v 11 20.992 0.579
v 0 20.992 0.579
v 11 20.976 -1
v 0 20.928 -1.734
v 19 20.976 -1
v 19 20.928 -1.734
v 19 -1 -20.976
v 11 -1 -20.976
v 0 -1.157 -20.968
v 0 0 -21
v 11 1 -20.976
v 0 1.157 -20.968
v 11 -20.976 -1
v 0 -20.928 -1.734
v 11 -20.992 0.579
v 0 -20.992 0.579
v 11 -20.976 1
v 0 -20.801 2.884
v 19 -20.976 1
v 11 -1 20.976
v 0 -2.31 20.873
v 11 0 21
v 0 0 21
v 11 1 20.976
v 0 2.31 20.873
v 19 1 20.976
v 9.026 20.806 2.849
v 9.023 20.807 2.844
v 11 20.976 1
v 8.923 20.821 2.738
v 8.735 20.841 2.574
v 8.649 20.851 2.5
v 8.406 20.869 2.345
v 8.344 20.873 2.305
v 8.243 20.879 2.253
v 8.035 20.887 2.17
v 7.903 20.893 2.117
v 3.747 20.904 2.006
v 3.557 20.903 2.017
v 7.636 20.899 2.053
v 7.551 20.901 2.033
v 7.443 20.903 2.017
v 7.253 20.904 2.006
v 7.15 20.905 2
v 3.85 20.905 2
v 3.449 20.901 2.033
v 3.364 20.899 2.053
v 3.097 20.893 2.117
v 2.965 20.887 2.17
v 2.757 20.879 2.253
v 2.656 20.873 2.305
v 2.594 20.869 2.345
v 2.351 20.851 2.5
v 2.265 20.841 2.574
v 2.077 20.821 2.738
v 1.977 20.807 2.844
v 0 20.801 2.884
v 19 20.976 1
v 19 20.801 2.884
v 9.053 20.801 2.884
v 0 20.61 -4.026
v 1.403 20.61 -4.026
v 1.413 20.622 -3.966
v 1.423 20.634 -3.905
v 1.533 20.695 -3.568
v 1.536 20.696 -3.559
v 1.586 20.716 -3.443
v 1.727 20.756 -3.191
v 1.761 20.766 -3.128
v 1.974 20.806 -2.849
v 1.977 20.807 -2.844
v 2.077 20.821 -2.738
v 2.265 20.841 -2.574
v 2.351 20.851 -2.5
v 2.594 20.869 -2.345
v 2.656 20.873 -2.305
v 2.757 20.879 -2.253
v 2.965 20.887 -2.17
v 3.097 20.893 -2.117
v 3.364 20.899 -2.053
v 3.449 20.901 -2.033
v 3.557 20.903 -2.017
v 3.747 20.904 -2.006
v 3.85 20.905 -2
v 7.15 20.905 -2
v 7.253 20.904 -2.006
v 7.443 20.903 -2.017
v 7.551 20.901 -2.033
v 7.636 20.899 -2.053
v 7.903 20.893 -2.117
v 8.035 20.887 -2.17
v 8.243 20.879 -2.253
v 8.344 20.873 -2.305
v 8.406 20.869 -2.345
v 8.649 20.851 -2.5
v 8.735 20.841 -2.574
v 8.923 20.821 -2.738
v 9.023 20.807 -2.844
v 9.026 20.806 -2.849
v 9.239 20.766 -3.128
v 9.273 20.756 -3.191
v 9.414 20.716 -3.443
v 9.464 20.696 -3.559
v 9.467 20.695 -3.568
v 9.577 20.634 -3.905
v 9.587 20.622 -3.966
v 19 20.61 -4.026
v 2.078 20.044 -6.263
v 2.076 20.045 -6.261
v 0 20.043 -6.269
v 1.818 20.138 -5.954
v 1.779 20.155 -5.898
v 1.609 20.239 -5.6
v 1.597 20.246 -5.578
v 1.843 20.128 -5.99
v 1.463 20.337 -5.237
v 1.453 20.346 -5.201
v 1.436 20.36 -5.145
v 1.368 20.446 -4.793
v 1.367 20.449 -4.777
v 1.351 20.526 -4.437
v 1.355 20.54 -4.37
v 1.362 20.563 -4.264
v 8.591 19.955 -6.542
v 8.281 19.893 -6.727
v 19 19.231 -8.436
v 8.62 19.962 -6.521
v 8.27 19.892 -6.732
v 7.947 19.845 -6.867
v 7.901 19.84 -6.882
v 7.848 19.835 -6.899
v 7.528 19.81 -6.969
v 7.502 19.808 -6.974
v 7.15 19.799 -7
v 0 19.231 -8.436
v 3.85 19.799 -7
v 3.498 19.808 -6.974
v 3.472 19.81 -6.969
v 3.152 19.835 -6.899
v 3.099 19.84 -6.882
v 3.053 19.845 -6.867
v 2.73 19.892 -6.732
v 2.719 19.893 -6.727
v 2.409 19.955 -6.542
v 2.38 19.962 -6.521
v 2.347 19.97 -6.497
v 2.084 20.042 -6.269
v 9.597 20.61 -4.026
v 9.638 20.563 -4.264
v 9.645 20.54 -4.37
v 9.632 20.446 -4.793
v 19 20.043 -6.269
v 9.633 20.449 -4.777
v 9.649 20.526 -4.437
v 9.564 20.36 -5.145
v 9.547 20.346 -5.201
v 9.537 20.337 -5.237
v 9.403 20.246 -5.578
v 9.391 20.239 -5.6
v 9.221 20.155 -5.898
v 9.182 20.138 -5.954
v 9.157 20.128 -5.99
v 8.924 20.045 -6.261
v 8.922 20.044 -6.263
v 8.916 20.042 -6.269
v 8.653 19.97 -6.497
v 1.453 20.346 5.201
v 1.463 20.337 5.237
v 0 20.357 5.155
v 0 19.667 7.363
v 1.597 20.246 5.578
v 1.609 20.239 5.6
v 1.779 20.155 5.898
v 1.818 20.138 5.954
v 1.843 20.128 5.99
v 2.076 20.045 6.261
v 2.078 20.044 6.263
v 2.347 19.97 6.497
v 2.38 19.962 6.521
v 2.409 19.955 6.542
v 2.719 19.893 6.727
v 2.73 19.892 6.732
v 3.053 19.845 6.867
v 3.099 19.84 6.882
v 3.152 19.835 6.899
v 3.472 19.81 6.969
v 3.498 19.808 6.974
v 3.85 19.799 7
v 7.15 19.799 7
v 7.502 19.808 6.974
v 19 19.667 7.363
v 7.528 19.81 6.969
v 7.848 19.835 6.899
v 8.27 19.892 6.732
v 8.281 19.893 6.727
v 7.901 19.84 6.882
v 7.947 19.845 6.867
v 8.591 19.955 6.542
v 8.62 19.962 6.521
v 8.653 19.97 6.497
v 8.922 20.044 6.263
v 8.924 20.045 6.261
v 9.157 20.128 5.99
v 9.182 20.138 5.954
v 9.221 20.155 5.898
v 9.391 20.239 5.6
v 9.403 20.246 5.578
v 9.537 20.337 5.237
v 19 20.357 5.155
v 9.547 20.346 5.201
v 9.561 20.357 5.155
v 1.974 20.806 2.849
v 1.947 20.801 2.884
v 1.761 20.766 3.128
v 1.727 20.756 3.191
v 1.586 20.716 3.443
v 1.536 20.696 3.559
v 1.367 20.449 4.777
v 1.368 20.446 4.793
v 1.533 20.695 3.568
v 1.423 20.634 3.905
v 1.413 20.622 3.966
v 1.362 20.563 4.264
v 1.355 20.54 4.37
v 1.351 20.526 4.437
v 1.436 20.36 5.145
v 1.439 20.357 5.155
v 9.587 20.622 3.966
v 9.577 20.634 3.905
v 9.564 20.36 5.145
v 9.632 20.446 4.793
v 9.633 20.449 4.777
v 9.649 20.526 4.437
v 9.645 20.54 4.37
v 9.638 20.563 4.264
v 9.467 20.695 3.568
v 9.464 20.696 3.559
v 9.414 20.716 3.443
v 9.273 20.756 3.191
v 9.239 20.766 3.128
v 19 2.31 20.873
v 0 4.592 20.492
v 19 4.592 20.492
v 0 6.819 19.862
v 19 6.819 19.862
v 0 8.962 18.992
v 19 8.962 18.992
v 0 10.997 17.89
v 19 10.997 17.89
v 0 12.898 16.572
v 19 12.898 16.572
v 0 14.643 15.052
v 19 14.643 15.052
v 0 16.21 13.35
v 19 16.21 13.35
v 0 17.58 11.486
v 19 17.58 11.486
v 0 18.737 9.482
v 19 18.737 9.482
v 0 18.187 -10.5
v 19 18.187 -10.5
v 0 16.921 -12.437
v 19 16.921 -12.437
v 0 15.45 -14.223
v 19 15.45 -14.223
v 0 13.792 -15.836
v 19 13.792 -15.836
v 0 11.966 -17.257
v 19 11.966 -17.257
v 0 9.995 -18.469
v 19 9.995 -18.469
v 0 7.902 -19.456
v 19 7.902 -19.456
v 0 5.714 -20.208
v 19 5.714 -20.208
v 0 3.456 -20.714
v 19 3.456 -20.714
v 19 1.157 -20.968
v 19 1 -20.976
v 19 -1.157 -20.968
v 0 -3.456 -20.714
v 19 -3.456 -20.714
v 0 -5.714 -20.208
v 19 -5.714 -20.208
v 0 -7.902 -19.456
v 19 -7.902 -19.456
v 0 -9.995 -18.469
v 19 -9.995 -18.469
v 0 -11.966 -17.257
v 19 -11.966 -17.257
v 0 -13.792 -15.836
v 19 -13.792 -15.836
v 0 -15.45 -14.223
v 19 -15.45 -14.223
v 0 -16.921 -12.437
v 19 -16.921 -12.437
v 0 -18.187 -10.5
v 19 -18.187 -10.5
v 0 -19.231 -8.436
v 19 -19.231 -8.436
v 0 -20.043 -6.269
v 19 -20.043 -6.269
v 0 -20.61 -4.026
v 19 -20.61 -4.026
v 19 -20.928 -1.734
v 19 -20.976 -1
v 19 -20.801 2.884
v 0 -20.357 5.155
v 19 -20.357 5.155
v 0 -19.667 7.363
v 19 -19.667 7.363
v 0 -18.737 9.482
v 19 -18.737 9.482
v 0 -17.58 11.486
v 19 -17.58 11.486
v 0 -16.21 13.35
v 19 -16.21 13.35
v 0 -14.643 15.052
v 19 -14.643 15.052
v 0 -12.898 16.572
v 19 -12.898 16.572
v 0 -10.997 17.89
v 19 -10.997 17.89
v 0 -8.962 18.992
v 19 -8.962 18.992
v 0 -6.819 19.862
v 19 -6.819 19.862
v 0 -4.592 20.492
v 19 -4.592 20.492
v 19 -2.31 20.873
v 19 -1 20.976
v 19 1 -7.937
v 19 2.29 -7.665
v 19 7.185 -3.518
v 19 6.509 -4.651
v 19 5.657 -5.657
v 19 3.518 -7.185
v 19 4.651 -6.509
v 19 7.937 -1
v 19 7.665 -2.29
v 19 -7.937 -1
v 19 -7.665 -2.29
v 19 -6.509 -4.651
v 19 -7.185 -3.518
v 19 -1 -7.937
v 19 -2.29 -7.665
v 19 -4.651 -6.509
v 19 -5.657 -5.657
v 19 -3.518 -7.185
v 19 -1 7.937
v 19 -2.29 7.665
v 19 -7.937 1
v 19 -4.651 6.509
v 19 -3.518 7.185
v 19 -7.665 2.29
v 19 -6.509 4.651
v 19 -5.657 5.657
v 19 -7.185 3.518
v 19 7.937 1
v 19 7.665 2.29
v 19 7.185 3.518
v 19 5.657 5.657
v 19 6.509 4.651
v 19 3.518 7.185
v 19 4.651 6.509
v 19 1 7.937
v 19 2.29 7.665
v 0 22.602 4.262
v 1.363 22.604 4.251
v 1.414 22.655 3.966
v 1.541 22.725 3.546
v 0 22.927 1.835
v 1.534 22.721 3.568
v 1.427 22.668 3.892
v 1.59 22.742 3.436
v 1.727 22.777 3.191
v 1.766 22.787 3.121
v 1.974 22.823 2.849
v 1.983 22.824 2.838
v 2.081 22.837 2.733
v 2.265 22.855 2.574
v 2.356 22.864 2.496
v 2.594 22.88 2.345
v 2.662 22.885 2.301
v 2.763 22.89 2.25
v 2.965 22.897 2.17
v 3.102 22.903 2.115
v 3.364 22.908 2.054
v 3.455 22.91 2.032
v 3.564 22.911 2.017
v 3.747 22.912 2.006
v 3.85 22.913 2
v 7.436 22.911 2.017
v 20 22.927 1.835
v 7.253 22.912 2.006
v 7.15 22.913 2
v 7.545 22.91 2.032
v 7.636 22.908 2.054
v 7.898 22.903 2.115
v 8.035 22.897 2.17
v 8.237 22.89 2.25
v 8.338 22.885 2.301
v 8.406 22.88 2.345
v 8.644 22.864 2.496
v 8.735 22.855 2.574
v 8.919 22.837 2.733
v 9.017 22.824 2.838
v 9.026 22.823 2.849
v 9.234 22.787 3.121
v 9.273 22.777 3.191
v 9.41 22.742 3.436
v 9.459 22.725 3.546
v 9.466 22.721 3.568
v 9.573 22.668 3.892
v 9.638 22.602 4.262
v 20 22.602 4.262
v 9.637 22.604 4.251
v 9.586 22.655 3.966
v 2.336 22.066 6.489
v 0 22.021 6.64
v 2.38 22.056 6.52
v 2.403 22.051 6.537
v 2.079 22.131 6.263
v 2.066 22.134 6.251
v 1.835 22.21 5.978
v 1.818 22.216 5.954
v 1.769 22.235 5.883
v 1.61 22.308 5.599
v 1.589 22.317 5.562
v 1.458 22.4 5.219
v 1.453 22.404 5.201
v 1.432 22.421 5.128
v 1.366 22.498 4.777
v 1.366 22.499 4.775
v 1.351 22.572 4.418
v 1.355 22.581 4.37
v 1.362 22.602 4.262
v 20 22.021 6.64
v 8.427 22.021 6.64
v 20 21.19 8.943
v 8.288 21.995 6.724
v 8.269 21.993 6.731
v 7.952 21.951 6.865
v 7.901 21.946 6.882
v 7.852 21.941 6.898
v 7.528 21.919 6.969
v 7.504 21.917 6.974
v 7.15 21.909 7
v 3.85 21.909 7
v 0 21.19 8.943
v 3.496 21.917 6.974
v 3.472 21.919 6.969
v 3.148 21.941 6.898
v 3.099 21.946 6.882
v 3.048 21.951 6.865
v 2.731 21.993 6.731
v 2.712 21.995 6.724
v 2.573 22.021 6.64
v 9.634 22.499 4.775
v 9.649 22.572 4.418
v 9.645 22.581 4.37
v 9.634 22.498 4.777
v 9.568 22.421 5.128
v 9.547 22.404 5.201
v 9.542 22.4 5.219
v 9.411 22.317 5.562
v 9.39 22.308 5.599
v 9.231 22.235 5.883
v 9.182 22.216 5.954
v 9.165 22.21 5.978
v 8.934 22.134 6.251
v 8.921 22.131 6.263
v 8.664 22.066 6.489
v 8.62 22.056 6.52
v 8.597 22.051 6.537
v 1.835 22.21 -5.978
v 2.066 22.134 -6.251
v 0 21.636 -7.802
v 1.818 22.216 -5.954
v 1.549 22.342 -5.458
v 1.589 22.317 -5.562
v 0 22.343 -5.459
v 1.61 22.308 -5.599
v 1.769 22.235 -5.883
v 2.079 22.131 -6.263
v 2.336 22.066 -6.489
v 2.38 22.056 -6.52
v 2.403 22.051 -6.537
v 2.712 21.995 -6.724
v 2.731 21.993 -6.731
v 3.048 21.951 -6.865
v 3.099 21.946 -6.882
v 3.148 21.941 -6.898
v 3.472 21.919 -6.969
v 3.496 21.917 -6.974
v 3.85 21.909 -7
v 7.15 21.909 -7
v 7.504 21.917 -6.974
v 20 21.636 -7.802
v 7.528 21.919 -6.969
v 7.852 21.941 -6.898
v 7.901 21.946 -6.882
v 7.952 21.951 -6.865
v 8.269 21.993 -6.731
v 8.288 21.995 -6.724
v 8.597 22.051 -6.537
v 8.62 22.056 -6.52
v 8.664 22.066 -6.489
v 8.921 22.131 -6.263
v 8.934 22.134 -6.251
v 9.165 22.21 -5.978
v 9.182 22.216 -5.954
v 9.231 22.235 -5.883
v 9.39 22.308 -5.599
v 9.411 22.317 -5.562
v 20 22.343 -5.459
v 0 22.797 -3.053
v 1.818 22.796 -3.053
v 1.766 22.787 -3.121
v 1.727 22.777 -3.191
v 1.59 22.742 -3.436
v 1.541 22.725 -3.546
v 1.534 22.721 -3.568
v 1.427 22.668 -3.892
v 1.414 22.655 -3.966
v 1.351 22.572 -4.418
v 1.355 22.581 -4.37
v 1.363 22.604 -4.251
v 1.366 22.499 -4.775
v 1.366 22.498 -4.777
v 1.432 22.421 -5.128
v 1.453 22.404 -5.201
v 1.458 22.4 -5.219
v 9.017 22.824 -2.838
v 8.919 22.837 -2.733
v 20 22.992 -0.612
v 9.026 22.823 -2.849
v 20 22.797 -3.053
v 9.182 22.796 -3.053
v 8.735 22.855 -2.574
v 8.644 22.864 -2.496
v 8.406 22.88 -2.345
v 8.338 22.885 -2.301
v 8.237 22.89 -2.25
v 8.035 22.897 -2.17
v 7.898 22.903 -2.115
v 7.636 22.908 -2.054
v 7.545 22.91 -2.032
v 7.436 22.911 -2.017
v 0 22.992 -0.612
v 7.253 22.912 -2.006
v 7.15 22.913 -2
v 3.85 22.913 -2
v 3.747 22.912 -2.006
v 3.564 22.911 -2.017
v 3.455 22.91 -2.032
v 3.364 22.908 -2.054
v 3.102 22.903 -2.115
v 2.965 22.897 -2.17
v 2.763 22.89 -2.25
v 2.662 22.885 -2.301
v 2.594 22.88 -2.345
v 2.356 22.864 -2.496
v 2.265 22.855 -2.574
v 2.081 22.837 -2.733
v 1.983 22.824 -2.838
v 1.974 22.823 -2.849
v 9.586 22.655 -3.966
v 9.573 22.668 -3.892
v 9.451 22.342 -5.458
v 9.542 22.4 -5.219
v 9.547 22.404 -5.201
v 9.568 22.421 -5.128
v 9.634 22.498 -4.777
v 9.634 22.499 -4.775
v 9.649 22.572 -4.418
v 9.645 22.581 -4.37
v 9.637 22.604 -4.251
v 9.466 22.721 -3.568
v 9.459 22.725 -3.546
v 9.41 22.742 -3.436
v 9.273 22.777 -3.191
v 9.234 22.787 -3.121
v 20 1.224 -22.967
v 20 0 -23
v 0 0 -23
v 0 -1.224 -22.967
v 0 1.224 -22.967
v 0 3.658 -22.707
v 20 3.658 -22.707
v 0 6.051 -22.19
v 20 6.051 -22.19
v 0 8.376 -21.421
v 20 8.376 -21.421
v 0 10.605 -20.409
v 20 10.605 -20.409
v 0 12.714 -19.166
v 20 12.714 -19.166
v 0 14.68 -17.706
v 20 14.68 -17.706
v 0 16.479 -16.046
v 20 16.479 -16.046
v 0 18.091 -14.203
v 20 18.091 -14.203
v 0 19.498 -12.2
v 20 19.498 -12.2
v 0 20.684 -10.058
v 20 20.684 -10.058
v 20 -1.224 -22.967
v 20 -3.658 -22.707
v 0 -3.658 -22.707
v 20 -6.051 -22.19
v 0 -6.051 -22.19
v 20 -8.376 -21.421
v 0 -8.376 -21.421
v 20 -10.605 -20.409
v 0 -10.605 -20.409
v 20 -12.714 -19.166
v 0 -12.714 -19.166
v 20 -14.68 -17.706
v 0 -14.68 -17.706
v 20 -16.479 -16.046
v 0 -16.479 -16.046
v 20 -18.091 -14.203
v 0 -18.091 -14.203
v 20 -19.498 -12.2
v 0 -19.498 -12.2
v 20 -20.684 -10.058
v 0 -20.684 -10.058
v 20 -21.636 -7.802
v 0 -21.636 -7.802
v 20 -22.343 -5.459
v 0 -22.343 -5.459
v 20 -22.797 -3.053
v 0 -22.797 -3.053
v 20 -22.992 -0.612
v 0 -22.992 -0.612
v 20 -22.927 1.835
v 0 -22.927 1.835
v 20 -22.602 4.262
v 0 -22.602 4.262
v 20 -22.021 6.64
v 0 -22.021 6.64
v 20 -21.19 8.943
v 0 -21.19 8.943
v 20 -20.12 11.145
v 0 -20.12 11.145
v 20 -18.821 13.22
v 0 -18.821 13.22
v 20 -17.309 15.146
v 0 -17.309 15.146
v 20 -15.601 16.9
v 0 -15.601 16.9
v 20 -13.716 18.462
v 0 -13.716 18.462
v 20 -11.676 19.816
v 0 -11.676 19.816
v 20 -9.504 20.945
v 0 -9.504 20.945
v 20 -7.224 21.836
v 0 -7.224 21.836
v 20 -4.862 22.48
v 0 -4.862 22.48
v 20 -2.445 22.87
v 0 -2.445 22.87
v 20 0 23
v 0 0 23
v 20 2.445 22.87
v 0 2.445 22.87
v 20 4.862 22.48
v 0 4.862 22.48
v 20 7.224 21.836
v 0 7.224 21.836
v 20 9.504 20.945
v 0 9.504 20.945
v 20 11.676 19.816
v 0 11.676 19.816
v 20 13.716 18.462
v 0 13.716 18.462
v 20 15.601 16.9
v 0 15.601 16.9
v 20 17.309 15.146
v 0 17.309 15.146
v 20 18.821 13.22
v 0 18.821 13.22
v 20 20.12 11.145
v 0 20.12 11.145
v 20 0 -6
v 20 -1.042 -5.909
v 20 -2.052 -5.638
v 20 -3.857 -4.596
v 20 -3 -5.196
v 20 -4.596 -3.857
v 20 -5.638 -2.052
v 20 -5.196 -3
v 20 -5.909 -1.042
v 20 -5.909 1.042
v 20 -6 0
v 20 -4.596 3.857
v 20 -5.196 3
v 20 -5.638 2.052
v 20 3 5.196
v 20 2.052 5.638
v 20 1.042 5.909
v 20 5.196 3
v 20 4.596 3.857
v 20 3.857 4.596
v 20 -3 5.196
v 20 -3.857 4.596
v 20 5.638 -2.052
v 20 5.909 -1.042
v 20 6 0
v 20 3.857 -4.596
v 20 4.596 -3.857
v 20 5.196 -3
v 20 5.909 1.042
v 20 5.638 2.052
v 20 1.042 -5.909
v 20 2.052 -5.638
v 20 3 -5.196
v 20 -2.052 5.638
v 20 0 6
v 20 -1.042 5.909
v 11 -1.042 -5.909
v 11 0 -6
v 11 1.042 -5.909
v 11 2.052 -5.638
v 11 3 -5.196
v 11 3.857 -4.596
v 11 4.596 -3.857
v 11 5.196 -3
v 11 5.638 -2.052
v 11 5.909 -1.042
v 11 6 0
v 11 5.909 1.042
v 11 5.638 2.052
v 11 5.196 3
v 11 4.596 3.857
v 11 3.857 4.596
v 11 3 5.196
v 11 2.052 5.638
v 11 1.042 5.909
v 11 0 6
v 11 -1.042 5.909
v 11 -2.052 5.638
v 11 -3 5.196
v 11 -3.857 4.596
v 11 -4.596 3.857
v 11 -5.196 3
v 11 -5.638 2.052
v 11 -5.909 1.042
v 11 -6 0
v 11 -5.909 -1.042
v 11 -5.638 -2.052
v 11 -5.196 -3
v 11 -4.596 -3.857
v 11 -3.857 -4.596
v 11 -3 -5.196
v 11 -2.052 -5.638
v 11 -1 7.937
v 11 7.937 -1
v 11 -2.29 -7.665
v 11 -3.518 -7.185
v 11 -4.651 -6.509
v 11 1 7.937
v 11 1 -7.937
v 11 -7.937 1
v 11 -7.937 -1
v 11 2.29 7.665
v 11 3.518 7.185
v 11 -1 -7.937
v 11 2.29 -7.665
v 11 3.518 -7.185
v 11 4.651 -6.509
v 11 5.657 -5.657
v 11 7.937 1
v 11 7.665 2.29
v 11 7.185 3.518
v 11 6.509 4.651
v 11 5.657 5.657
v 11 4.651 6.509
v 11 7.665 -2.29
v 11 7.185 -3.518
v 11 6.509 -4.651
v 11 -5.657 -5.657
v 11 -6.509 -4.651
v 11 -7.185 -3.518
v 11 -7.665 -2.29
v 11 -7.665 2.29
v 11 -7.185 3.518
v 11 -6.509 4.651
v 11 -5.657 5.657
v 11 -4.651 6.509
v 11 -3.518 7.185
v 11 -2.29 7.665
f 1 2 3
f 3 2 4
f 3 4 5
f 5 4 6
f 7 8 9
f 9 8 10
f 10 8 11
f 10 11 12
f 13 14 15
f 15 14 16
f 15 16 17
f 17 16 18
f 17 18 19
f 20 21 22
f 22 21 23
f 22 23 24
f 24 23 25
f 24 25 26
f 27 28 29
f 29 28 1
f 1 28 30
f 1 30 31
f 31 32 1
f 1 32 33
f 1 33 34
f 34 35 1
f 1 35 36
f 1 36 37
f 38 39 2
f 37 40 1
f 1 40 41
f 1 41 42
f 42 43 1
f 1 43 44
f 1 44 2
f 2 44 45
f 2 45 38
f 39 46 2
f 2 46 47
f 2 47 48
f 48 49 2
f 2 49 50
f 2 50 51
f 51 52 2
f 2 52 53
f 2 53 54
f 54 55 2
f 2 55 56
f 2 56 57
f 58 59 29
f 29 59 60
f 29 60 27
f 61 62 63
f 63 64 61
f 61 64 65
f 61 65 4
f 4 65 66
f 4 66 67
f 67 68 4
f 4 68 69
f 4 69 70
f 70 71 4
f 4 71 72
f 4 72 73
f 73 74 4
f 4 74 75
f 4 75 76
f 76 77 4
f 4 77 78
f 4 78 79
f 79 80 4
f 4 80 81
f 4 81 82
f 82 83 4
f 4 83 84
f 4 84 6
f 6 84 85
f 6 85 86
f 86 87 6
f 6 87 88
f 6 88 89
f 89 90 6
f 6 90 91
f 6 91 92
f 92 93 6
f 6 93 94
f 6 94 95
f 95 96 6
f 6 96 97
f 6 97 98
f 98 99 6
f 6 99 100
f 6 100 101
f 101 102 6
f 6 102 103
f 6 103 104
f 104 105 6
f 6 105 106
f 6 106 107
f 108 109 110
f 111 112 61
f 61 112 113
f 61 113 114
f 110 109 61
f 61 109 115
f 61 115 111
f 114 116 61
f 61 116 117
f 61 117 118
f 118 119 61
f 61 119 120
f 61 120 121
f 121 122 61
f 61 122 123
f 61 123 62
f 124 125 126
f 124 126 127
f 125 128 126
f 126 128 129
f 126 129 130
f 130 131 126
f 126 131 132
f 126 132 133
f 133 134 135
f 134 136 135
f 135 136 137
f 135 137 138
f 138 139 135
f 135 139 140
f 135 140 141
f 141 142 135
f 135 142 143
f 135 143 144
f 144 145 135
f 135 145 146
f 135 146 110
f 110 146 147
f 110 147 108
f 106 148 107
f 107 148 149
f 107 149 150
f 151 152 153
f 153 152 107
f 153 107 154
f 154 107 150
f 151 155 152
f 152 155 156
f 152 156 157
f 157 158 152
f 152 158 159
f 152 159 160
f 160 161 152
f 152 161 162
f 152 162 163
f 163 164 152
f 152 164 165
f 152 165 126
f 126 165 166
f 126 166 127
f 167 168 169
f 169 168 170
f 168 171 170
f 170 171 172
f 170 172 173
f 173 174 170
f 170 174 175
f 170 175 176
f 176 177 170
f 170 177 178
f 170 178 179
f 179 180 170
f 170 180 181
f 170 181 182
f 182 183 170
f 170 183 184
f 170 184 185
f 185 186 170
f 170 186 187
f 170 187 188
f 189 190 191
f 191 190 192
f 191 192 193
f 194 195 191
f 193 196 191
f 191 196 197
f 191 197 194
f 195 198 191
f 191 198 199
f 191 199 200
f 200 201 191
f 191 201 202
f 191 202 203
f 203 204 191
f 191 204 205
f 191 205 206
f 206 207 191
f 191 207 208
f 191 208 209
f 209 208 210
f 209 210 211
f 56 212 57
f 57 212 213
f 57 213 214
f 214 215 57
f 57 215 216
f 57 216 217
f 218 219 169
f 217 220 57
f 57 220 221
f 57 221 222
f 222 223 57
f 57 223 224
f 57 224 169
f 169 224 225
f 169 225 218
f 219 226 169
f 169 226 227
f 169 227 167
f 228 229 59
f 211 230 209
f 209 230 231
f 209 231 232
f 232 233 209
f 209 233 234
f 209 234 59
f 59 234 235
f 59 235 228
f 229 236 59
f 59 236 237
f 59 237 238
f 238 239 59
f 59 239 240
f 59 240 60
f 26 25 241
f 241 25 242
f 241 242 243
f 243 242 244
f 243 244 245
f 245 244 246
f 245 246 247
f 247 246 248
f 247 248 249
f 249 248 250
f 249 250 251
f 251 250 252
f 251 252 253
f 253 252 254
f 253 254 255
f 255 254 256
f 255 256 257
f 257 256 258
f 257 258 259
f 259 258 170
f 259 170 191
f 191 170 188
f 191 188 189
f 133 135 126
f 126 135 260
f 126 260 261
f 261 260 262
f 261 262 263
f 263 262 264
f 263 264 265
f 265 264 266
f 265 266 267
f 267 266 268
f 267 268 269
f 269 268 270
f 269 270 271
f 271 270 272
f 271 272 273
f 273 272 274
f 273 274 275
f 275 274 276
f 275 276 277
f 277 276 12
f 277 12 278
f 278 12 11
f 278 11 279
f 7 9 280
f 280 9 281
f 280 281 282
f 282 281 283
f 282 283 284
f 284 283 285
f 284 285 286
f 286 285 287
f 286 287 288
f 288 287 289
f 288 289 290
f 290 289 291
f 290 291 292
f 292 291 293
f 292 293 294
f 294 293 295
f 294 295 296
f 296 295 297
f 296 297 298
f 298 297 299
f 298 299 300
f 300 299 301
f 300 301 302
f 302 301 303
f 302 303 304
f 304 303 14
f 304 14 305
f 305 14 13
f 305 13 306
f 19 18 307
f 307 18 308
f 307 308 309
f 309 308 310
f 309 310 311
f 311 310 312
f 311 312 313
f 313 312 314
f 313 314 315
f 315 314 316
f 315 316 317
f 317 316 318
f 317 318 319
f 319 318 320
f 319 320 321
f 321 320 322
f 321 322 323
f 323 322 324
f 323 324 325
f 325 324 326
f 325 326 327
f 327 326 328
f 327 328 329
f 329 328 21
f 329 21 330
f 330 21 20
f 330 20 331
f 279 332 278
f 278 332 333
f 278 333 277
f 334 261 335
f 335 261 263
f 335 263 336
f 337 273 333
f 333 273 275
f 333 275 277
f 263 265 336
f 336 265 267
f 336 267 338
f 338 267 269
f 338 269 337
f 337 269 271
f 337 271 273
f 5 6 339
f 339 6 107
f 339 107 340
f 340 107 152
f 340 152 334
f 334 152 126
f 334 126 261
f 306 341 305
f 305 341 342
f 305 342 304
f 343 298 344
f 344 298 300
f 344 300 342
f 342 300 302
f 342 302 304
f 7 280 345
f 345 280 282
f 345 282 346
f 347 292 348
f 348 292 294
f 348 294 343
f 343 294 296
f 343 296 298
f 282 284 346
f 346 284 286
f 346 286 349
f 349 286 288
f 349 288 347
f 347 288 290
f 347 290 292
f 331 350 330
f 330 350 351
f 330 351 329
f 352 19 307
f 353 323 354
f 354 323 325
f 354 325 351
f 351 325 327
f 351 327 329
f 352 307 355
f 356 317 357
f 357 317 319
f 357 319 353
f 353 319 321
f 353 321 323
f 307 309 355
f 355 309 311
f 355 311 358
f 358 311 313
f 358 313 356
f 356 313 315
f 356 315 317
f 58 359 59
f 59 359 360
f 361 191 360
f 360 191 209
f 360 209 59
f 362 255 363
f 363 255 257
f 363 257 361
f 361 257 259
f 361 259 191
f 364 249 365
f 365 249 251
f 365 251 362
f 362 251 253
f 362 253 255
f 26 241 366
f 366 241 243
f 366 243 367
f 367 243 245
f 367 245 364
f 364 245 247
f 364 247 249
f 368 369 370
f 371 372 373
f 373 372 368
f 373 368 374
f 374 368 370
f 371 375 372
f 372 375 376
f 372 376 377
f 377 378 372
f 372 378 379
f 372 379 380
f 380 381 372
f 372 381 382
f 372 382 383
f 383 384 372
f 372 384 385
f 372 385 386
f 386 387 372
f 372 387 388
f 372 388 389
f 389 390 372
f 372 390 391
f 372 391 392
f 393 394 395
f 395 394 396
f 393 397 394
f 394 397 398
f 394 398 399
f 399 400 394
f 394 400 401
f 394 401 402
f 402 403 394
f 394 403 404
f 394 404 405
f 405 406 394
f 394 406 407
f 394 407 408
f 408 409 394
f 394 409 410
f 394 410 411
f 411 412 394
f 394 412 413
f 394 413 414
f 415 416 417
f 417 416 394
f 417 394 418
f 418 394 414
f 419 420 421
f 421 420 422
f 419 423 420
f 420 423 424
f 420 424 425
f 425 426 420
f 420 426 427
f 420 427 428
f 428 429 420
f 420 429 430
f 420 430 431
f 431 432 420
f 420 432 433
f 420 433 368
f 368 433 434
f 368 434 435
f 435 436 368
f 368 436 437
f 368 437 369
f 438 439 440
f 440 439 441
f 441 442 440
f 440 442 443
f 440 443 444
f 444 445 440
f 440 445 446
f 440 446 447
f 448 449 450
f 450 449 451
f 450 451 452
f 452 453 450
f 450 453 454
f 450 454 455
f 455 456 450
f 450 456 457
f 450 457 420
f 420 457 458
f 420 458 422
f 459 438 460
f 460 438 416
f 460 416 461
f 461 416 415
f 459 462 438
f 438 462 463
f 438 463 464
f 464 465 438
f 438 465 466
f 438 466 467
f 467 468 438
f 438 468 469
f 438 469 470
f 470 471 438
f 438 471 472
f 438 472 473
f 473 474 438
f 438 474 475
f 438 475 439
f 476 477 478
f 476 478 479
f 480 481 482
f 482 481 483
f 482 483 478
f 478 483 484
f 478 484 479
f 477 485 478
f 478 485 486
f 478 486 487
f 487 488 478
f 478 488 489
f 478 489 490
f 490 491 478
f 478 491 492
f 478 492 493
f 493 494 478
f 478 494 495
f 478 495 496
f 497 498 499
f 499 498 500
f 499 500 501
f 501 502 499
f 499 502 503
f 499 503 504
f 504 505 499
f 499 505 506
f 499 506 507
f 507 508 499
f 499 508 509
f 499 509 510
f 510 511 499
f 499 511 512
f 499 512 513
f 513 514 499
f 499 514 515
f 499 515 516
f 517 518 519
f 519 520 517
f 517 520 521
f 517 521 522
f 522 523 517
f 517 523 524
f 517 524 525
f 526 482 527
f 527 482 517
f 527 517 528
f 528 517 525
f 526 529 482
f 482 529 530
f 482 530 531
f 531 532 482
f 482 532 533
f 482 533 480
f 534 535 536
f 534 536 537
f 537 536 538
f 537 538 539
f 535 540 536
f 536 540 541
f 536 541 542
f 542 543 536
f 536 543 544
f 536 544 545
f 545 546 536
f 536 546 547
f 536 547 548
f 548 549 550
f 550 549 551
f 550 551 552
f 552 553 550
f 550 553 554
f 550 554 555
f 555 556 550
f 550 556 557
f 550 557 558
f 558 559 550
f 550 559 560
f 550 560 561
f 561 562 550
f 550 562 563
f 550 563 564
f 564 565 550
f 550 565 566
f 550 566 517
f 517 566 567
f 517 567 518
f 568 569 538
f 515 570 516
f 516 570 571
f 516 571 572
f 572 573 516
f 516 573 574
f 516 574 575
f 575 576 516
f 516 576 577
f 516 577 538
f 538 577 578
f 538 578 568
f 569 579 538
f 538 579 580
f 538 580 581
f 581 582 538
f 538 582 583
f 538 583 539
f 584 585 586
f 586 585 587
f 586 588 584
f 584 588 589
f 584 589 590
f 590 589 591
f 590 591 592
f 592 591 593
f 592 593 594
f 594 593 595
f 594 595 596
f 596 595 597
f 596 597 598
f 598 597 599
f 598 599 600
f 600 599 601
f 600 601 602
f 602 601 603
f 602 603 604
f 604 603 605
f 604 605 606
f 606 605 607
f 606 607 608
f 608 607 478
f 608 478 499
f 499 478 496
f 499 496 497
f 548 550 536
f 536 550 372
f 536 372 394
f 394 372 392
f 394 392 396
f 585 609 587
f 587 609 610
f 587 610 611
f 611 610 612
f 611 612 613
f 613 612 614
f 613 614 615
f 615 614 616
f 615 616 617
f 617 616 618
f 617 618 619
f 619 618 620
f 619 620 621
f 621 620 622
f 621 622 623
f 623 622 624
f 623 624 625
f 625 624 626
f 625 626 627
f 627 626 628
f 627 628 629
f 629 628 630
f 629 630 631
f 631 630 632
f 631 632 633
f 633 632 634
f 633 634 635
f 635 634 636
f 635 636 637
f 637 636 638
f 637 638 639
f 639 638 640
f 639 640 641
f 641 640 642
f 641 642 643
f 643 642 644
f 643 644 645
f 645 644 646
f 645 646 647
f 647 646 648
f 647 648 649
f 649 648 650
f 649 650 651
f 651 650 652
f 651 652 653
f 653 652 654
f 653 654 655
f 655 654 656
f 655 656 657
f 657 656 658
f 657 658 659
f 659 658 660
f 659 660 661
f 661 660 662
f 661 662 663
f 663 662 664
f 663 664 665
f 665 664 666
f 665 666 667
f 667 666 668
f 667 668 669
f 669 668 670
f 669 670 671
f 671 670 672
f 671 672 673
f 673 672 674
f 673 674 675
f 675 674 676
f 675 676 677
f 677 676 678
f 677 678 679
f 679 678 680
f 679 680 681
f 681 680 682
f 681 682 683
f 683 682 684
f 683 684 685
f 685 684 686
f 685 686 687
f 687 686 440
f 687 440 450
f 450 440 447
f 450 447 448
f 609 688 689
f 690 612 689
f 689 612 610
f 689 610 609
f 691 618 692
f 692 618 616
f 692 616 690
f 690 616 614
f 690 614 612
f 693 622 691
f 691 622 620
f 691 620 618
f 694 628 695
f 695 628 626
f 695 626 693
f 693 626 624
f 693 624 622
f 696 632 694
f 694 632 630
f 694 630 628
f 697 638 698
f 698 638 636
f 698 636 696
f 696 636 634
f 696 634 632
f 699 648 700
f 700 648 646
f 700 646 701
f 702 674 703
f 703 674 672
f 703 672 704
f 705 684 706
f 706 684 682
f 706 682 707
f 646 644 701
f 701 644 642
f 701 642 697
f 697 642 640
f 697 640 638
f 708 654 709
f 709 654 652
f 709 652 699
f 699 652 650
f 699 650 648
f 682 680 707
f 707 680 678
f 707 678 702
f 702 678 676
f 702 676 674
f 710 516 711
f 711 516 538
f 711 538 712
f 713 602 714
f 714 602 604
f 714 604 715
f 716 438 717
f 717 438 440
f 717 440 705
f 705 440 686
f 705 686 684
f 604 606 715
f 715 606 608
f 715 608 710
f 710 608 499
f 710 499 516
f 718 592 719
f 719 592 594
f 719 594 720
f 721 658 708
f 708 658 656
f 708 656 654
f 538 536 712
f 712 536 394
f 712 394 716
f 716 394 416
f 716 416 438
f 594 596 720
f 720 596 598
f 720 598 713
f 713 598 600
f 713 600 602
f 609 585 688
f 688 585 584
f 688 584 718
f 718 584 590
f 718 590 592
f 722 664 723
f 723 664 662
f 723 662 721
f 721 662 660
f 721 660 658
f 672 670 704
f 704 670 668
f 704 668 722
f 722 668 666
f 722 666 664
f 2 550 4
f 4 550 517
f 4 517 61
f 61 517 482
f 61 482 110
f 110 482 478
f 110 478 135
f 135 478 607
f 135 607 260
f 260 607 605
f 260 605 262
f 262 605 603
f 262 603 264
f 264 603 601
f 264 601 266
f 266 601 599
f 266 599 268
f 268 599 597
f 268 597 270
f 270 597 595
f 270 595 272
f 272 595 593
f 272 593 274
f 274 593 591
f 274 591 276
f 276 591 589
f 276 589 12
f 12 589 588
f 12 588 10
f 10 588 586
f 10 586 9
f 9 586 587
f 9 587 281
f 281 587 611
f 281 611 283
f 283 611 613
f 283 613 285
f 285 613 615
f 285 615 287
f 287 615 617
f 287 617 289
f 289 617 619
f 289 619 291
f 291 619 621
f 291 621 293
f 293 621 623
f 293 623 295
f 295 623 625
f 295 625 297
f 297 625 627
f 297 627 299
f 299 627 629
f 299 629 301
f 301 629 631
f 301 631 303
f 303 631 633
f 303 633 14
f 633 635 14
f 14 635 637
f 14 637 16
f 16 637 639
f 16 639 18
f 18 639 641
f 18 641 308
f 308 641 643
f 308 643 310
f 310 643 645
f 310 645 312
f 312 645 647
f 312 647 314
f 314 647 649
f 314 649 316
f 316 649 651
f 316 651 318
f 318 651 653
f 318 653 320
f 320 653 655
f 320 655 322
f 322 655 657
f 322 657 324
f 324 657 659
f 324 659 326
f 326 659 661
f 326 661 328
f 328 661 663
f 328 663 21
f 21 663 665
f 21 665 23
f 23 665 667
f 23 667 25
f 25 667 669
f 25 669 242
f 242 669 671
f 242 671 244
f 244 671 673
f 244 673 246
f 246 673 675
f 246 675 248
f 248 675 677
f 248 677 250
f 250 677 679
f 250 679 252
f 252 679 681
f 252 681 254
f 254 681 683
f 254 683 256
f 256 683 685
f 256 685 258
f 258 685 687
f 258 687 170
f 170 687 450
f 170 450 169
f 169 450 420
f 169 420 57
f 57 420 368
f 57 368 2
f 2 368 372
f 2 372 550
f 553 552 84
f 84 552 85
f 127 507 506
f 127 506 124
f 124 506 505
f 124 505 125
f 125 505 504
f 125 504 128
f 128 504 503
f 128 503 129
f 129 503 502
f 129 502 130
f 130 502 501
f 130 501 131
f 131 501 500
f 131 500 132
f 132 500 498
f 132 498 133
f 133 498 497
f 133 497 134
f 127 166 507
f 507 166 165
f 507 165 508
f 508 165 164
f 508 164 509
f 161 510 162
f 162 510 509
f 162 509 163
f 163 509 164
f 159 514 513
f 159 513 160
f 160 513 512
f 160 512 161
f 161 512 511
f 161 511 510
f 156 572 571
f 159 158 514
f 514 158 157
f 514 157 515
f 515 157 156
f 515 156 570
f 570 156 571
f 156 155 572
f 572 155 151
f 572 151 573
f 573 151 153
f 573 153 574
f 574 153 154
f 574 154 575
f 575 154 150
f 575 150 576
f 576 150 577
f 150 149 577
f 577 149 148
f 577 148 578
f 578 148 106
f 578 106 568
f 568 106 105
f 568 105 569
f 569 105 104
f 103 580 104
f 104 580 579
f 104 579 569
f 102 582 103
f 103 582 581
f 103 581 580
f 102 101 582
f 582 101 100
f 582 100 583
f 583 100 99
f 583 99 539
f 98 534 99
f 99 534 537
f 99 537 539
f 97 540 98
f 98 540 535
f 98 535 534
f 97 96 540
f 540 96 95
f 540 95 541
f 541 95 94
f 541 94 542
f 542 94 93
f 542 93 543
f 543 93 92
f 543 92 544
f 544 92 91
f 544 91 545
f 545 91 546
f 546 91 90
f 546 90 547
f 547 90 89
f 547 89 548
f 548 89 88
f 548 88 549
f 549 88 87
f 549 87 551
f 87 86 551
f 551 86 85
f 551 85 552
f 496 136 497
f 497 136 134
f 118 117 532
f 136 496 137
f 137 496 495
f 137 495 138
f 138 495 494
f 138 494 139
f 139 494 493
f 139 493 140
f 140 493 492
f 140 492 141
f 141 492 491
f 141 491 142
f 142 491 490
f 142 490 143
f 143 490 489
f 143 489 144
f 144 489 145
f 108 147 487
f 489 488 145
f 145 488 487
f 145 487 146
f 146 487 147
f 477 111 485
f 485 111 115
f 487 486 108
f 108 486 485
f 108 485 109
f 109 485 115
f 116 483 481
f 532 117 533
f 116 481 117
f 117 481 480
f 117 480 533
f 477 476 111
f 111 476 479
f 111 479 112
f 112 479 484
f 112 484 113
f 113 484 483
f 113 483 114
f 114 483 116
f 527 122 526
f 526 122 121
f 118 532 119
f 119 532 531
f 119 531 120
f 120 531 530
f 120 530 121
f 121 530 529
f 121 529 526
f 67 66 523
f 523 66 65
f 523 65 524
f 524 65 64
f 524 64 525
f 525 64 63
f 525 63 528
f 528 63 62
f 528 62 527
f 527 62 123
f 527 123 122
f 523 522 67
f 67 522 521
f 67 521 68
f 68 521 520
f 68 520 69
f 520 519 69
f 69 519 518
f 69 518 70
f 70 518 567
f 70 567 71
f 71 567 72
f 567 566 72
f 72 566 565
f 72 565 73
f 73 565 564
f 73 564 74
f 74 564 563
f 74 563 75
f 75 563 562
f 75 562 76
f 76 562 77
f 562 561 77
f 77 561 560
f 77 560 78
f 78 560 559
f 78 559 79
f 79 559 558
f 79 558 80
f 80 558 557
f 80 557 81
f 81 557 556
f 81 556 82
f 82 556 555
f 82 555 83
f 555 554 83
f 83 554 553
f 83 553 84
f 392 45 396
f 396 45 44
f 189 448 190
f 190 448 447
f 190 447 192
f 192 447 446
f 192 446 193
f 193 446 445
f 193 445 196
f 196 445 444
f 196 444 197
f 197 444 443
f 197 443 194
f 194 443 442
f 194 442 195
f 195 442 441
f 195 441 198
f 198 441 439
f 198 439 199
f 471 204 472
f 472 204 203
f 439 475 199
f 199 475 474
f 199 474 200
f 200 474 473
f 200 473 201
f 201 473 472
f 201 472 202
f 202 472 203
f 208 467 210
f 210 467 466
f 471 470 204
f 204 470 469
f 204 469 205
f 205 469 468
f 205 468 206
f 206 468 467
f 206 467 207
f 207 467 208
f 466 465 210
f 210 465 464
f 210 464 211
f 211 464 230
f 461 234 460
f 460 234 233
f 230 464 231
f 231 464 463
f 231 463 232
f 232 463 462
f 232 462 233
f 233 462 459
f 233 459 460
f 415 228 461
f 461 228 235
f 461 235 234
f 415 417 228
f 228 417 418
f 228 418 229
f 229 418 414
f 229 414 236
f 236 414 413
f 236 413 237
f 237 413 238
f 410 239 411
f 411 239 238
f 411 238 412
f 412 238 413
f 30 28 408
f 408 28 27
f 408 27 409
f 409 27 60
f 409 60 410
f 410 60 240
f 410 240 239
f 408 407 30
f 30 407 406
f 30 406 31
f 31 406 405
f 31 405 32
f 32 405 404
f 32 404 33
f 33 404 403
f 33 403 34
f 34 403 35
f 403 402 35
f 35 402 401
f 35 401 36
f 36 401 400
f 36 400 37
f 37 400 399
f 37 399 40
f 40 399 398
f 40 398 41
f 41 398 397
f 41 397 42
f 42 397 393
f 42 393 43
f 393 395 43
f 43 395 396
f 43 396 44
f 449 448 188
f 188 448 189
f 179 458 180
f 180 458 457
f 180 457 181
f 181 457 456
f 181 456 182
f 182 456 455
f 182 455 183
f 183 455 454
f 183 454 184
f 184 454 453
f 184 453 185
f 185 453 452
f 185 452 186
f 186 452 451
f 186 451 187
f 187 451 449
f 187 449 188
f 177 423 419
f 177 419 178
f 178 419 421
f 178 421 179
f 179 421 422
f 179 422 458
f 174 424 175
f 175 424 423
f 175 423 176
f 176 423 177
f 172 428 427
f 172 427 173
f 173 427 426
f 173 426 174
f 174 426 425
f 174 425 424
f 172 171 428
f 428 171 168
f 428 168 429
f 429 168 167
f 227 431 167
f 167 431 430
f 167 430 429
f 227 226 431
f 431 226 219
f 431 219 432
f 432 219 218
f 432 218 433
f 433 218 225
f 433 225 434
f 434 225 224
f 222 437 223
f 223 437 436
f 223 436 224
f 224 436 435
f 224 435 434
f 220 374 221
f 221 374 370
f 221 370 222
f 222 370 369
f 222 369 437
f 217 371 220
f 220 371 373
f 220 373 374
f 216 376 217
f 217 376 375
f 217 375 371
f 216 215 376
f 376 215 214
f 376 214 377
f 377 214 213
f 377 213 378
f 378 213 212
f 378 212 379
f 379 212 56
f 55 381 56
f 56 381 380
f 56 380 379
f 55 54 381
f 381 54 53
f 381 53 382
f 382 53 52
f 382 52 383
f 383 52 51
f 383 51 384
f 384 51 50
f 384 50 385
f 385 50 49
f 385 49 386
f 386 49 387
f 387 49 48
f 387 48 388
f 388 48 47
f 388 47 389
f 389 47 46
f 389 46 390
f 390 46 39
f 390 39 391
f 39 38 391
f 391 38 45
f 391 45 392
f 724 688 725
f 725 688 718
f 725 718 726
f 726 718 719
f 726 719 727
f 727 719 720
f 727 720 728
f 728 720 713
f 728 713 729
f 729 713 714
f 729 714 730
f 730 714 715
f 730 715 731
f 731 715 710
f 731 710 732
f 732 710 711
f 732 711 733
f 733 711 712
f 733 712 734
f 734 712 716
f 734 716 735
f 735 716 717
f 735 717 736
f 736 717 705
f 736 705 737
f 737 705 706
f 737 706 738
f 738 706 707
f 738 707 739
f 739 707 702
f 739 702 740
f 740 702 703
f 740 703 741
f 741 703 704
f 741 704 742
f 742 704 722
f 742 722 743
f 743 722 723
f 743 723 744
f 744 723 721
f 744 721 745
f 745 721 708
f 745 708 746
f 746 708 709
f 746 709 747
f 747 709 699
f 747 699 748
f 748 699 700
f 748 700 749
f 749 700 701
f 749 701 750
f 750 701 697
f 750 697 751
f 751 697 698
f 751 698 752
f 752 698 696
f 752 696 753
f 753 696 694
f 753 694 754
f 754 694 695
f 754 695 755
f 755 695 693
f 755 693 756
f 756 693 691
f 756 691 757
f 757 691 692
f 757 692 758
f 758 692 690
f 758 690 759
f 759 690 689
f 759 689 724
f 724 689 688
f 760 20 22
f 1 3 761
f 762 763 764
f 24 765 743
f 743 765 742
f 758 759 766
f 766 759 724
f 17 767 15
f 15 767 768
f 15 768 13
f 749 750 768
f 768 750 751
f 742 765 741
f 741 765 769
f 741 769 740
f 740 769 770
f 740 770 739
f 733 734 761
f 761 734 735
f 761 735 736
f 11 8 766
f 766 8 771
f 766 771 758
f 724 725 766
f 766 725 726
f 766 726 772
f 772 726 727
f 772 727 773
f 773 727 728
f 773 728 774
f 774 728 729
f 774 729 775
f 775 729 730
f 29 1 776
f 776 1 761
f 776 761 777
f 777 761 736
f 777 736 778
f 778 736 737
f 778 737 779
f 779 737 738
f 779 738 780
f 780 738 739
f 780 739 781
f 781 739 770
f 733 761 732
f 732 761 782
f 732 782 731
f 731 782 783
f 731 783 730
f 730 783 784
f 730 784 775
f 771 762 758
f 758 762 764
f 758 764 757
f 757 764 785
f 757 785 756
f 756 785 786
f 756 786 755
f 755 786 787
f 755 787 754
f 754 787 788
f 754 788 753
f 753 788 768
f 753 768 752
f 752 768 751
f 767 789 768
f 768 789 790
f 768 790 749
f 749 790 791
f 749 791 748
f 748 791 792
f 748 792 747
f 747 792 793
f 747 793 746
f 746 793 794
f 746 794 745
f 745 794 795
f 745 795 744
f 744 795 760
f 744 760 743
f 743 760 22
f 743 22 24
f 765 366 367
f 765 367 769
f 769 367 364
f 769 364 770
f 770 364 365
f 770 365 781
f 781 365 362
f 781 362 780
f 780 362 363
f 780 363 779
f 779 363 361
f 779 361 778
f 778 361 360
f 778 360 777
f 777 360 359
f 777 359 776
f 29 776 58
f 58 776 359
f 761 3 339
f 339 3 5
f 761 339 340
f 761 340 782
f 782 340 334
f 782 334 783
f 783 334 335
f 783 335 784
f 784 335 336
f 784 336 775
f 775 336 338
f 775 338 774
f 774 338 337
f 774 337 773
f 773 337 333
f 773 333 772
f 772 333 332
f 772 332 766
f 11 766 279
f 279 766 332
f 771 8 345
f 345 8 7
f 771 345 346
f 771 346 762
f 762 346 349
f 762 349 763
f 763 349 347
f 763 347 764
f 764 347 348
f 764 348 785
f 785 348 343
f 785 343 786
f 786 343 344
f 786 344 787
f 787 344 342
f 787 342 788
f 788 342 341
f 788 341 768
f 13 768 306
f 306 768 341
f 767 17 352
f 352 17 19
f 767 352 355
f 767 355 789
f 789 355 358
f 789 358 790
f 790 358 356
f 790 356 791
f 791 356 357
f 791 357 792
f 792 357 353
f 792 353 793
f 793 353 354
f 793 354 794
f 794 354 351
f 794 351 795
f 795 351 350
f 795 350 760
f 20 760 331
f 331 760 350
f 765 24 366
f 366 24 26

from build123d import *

# Parameters (mm, degrees)
SKETCH1_R           = 23
SKETCH1_R_2         = 21
BOSS_EXTRUDE1_DEPTH = 20
CUT_EXTRUDE1_START  = 19.798989767
CUT_EXTRUDE1_DEPTH  = 3.113888708
BOSS_EXTRUDE2_START = -1
SKETCH3_R           = 21
SKETCH3_R_2         = 6
BOSS_EXTRUDE2_DEPTH = 1
BOSS_EXTRUDE3_START = 8
SKETCH4_R           = 6
BOSS_EXTRUDE3_DEPTH = 8


# Read off the part's stored shape, not the designer's step: Cut-Extrude1
with BuildPart() as part:
    # Sketch1 → Boss-Extrude1 (new body)
    with BuildSketch(Plane(origin=(0, 0, 0), x_dir=(0, 0, -1), z_dir=(1, 0, 0))):
        Circle(SKETCH1_R)
        Circle(SKETCH1_R_2, mode=Mode.SUBTRACT)
    extrude(amount=BOSS_EXTRUDE1_DEPTH)

    # Cut-Extrude1 outline → Cut-Extrude1 (cut)
    with BuildSketch(Plane(origin=(0, 0, 0), x_dir=(1, 0, 0), z_dir=(0, 1, 0)).offset(CUT_EXTRUDE1_START)):
        with BuildLine():
            add(Edge.make_bspline(
                [(7.15, 7), (7.818022917, 7), (8.466048034, 6.72160004), (9.377693338, 5.805707302), (9.644739555, 5.166655745), (9.655100007, 3.873398622), (9.398895769, 3.221423625), (8.466344312, 2.273000364), (7.817770221, 2), (7.15, 2)],
                knots=[0, 0, 0, 0, 0.25, 0.25, 0.5, 0.5, 0.75, 0.75, 1, 1, 1, 1], degree=3))
            Line((7.15, 7), (3.85, 7))
            add(Edge.make_bspline(
                [(3.85, 7), (3.181977083, 7), (2.533951966, 6.72160004), (1.622306662, 5.805707302), (1.355260445, 5.166655745), (1.344899993, 3.873398622), (1.601104231, 3.221423625), (2.533655688, 2.273000364), (3.182229779, 2), (3.85, 2)],
                knots=[0, 0, 0, 0, 0.25, 0.25, 0.5, 0.5, 0.75, 0.75, 1, 1, 1, 1], degree=3))
            Line((3.85, 2), (7.15, 2))
        make_face()
        with BuildLine():
            Line((3.85, -7), (7.15, -7))
            add(Edge.make_bspline(
                [(7.15, -7), (7.818022917, -7), (8.466048034, -6.72160004), (9.377693338, -5.805707302), (9.644739555, -5.166655745), (9.655100007, -3.873398622), (9.398895769, -3.221423625), (8.466344312, -2.273000364), (7.817770221, -2), (7.15, -2)],
                knots=[0, 0, 0, 0, 0.25, 0.25, 0.5, 0.5, 0.75, 0.75, 1, 1, 1, 1], degree=3))
            Line((7.15, -2), (3.85, -2))
            add(Edge.make_bspline(
                [(3.85, -7), (3.181977083, -7), (2.533951966, -6.72160004), (1.622306662, -5.805707302), (1.355260445, -5.166655745), (1.344899993, -3.873398622), (1.601104231, -3.221423625), (2.533655688, -2.273000364), (3.182229779, -2), (3.85, -2)],
                knots=[0, 0, 0, 0, 0.25, 0.25, 0.5, 0.5, 0.75, 0.75, 1, 1, 1, 1], degree=3))
        make_face()
    extrude(amount=CUT_EXTRUDE1_DEPTH, mode=Mode.SUBTRACT)

    # Sketch3 → Boss-Extrude2 (add)
    with BuildSketch(Plane(origin=(20, 0, 0), x_dir=(0, 0, -1), z_dir=(1, 0, 0)).offset(BOSS_EXTRUDE2_START)):
        Circle(SKETCH3_R)
        Circle(SKETCH3_R_2, mode=Mode.SUBTRACT)
    extrude(amount=BOSS_EXTRUDE2_DEPTH)

    # Sketch4 → Boss-Extrude3 (add)
    with BuildSketch(Plane.ZY.offset(-19).offset(BOSS_EXTRUDE3_START)):
        with BuildLine():
            Line((7.937253933, -1), (20.976176963, -1))
            ThreePointArc((20.976176963, -1), (21, 0), (20.976176963, 1))
            Line((20.976176963, 1), (7.937253933, 1))
            ThreePointArc((7.937253933, 1), (5.656854249, 5.656854249), (1, 7.937253933))
            Line((1, 7.937253933), (1, 20.976176963))
            ThreePointArc((1, 20.976176963), (0, 21), (-1, 20.976176963))
            Line((-1, 20.976176963), (-1, 7.937253933))
            ThreePointArc((-1, 7.937253933), (-5.656854249, 5.656854249), (-7.937253933, 1))
            Line((-7.937253933, 1), (-20.976176963, 1))
            ThreePointArc((-20.976176963, 1), (-21, 0), (-20.976176963, -1))
            Line((-20.976176963, -1), (-7.937253933, -1))
            ThreePointArc((-7.937253933, -1), (-5.656854249, -5.656854249), (-1, -7.937253933))
            Line((-1, -7.937253933), (-1, -20.976176963))
            ThreePointArc((-1, -20.976176963), (0, -21), (1, -20.976176963))
            Line((1, -20.976176963), (1, -7.937253933))
            ThreePointArc((1, -7.937253933), (5.656854249, -5.656854249), (7.937253933, -1))
        make_face()
        with Locations(Location((0, 0, 0), (0, 0, 180))):
            Circle(SKETCH4_R, mode=Mode.SUBTRACT)
    extrude(amount=-BOSS_EXTRUDE3_DEPTH)


solid = part.part
